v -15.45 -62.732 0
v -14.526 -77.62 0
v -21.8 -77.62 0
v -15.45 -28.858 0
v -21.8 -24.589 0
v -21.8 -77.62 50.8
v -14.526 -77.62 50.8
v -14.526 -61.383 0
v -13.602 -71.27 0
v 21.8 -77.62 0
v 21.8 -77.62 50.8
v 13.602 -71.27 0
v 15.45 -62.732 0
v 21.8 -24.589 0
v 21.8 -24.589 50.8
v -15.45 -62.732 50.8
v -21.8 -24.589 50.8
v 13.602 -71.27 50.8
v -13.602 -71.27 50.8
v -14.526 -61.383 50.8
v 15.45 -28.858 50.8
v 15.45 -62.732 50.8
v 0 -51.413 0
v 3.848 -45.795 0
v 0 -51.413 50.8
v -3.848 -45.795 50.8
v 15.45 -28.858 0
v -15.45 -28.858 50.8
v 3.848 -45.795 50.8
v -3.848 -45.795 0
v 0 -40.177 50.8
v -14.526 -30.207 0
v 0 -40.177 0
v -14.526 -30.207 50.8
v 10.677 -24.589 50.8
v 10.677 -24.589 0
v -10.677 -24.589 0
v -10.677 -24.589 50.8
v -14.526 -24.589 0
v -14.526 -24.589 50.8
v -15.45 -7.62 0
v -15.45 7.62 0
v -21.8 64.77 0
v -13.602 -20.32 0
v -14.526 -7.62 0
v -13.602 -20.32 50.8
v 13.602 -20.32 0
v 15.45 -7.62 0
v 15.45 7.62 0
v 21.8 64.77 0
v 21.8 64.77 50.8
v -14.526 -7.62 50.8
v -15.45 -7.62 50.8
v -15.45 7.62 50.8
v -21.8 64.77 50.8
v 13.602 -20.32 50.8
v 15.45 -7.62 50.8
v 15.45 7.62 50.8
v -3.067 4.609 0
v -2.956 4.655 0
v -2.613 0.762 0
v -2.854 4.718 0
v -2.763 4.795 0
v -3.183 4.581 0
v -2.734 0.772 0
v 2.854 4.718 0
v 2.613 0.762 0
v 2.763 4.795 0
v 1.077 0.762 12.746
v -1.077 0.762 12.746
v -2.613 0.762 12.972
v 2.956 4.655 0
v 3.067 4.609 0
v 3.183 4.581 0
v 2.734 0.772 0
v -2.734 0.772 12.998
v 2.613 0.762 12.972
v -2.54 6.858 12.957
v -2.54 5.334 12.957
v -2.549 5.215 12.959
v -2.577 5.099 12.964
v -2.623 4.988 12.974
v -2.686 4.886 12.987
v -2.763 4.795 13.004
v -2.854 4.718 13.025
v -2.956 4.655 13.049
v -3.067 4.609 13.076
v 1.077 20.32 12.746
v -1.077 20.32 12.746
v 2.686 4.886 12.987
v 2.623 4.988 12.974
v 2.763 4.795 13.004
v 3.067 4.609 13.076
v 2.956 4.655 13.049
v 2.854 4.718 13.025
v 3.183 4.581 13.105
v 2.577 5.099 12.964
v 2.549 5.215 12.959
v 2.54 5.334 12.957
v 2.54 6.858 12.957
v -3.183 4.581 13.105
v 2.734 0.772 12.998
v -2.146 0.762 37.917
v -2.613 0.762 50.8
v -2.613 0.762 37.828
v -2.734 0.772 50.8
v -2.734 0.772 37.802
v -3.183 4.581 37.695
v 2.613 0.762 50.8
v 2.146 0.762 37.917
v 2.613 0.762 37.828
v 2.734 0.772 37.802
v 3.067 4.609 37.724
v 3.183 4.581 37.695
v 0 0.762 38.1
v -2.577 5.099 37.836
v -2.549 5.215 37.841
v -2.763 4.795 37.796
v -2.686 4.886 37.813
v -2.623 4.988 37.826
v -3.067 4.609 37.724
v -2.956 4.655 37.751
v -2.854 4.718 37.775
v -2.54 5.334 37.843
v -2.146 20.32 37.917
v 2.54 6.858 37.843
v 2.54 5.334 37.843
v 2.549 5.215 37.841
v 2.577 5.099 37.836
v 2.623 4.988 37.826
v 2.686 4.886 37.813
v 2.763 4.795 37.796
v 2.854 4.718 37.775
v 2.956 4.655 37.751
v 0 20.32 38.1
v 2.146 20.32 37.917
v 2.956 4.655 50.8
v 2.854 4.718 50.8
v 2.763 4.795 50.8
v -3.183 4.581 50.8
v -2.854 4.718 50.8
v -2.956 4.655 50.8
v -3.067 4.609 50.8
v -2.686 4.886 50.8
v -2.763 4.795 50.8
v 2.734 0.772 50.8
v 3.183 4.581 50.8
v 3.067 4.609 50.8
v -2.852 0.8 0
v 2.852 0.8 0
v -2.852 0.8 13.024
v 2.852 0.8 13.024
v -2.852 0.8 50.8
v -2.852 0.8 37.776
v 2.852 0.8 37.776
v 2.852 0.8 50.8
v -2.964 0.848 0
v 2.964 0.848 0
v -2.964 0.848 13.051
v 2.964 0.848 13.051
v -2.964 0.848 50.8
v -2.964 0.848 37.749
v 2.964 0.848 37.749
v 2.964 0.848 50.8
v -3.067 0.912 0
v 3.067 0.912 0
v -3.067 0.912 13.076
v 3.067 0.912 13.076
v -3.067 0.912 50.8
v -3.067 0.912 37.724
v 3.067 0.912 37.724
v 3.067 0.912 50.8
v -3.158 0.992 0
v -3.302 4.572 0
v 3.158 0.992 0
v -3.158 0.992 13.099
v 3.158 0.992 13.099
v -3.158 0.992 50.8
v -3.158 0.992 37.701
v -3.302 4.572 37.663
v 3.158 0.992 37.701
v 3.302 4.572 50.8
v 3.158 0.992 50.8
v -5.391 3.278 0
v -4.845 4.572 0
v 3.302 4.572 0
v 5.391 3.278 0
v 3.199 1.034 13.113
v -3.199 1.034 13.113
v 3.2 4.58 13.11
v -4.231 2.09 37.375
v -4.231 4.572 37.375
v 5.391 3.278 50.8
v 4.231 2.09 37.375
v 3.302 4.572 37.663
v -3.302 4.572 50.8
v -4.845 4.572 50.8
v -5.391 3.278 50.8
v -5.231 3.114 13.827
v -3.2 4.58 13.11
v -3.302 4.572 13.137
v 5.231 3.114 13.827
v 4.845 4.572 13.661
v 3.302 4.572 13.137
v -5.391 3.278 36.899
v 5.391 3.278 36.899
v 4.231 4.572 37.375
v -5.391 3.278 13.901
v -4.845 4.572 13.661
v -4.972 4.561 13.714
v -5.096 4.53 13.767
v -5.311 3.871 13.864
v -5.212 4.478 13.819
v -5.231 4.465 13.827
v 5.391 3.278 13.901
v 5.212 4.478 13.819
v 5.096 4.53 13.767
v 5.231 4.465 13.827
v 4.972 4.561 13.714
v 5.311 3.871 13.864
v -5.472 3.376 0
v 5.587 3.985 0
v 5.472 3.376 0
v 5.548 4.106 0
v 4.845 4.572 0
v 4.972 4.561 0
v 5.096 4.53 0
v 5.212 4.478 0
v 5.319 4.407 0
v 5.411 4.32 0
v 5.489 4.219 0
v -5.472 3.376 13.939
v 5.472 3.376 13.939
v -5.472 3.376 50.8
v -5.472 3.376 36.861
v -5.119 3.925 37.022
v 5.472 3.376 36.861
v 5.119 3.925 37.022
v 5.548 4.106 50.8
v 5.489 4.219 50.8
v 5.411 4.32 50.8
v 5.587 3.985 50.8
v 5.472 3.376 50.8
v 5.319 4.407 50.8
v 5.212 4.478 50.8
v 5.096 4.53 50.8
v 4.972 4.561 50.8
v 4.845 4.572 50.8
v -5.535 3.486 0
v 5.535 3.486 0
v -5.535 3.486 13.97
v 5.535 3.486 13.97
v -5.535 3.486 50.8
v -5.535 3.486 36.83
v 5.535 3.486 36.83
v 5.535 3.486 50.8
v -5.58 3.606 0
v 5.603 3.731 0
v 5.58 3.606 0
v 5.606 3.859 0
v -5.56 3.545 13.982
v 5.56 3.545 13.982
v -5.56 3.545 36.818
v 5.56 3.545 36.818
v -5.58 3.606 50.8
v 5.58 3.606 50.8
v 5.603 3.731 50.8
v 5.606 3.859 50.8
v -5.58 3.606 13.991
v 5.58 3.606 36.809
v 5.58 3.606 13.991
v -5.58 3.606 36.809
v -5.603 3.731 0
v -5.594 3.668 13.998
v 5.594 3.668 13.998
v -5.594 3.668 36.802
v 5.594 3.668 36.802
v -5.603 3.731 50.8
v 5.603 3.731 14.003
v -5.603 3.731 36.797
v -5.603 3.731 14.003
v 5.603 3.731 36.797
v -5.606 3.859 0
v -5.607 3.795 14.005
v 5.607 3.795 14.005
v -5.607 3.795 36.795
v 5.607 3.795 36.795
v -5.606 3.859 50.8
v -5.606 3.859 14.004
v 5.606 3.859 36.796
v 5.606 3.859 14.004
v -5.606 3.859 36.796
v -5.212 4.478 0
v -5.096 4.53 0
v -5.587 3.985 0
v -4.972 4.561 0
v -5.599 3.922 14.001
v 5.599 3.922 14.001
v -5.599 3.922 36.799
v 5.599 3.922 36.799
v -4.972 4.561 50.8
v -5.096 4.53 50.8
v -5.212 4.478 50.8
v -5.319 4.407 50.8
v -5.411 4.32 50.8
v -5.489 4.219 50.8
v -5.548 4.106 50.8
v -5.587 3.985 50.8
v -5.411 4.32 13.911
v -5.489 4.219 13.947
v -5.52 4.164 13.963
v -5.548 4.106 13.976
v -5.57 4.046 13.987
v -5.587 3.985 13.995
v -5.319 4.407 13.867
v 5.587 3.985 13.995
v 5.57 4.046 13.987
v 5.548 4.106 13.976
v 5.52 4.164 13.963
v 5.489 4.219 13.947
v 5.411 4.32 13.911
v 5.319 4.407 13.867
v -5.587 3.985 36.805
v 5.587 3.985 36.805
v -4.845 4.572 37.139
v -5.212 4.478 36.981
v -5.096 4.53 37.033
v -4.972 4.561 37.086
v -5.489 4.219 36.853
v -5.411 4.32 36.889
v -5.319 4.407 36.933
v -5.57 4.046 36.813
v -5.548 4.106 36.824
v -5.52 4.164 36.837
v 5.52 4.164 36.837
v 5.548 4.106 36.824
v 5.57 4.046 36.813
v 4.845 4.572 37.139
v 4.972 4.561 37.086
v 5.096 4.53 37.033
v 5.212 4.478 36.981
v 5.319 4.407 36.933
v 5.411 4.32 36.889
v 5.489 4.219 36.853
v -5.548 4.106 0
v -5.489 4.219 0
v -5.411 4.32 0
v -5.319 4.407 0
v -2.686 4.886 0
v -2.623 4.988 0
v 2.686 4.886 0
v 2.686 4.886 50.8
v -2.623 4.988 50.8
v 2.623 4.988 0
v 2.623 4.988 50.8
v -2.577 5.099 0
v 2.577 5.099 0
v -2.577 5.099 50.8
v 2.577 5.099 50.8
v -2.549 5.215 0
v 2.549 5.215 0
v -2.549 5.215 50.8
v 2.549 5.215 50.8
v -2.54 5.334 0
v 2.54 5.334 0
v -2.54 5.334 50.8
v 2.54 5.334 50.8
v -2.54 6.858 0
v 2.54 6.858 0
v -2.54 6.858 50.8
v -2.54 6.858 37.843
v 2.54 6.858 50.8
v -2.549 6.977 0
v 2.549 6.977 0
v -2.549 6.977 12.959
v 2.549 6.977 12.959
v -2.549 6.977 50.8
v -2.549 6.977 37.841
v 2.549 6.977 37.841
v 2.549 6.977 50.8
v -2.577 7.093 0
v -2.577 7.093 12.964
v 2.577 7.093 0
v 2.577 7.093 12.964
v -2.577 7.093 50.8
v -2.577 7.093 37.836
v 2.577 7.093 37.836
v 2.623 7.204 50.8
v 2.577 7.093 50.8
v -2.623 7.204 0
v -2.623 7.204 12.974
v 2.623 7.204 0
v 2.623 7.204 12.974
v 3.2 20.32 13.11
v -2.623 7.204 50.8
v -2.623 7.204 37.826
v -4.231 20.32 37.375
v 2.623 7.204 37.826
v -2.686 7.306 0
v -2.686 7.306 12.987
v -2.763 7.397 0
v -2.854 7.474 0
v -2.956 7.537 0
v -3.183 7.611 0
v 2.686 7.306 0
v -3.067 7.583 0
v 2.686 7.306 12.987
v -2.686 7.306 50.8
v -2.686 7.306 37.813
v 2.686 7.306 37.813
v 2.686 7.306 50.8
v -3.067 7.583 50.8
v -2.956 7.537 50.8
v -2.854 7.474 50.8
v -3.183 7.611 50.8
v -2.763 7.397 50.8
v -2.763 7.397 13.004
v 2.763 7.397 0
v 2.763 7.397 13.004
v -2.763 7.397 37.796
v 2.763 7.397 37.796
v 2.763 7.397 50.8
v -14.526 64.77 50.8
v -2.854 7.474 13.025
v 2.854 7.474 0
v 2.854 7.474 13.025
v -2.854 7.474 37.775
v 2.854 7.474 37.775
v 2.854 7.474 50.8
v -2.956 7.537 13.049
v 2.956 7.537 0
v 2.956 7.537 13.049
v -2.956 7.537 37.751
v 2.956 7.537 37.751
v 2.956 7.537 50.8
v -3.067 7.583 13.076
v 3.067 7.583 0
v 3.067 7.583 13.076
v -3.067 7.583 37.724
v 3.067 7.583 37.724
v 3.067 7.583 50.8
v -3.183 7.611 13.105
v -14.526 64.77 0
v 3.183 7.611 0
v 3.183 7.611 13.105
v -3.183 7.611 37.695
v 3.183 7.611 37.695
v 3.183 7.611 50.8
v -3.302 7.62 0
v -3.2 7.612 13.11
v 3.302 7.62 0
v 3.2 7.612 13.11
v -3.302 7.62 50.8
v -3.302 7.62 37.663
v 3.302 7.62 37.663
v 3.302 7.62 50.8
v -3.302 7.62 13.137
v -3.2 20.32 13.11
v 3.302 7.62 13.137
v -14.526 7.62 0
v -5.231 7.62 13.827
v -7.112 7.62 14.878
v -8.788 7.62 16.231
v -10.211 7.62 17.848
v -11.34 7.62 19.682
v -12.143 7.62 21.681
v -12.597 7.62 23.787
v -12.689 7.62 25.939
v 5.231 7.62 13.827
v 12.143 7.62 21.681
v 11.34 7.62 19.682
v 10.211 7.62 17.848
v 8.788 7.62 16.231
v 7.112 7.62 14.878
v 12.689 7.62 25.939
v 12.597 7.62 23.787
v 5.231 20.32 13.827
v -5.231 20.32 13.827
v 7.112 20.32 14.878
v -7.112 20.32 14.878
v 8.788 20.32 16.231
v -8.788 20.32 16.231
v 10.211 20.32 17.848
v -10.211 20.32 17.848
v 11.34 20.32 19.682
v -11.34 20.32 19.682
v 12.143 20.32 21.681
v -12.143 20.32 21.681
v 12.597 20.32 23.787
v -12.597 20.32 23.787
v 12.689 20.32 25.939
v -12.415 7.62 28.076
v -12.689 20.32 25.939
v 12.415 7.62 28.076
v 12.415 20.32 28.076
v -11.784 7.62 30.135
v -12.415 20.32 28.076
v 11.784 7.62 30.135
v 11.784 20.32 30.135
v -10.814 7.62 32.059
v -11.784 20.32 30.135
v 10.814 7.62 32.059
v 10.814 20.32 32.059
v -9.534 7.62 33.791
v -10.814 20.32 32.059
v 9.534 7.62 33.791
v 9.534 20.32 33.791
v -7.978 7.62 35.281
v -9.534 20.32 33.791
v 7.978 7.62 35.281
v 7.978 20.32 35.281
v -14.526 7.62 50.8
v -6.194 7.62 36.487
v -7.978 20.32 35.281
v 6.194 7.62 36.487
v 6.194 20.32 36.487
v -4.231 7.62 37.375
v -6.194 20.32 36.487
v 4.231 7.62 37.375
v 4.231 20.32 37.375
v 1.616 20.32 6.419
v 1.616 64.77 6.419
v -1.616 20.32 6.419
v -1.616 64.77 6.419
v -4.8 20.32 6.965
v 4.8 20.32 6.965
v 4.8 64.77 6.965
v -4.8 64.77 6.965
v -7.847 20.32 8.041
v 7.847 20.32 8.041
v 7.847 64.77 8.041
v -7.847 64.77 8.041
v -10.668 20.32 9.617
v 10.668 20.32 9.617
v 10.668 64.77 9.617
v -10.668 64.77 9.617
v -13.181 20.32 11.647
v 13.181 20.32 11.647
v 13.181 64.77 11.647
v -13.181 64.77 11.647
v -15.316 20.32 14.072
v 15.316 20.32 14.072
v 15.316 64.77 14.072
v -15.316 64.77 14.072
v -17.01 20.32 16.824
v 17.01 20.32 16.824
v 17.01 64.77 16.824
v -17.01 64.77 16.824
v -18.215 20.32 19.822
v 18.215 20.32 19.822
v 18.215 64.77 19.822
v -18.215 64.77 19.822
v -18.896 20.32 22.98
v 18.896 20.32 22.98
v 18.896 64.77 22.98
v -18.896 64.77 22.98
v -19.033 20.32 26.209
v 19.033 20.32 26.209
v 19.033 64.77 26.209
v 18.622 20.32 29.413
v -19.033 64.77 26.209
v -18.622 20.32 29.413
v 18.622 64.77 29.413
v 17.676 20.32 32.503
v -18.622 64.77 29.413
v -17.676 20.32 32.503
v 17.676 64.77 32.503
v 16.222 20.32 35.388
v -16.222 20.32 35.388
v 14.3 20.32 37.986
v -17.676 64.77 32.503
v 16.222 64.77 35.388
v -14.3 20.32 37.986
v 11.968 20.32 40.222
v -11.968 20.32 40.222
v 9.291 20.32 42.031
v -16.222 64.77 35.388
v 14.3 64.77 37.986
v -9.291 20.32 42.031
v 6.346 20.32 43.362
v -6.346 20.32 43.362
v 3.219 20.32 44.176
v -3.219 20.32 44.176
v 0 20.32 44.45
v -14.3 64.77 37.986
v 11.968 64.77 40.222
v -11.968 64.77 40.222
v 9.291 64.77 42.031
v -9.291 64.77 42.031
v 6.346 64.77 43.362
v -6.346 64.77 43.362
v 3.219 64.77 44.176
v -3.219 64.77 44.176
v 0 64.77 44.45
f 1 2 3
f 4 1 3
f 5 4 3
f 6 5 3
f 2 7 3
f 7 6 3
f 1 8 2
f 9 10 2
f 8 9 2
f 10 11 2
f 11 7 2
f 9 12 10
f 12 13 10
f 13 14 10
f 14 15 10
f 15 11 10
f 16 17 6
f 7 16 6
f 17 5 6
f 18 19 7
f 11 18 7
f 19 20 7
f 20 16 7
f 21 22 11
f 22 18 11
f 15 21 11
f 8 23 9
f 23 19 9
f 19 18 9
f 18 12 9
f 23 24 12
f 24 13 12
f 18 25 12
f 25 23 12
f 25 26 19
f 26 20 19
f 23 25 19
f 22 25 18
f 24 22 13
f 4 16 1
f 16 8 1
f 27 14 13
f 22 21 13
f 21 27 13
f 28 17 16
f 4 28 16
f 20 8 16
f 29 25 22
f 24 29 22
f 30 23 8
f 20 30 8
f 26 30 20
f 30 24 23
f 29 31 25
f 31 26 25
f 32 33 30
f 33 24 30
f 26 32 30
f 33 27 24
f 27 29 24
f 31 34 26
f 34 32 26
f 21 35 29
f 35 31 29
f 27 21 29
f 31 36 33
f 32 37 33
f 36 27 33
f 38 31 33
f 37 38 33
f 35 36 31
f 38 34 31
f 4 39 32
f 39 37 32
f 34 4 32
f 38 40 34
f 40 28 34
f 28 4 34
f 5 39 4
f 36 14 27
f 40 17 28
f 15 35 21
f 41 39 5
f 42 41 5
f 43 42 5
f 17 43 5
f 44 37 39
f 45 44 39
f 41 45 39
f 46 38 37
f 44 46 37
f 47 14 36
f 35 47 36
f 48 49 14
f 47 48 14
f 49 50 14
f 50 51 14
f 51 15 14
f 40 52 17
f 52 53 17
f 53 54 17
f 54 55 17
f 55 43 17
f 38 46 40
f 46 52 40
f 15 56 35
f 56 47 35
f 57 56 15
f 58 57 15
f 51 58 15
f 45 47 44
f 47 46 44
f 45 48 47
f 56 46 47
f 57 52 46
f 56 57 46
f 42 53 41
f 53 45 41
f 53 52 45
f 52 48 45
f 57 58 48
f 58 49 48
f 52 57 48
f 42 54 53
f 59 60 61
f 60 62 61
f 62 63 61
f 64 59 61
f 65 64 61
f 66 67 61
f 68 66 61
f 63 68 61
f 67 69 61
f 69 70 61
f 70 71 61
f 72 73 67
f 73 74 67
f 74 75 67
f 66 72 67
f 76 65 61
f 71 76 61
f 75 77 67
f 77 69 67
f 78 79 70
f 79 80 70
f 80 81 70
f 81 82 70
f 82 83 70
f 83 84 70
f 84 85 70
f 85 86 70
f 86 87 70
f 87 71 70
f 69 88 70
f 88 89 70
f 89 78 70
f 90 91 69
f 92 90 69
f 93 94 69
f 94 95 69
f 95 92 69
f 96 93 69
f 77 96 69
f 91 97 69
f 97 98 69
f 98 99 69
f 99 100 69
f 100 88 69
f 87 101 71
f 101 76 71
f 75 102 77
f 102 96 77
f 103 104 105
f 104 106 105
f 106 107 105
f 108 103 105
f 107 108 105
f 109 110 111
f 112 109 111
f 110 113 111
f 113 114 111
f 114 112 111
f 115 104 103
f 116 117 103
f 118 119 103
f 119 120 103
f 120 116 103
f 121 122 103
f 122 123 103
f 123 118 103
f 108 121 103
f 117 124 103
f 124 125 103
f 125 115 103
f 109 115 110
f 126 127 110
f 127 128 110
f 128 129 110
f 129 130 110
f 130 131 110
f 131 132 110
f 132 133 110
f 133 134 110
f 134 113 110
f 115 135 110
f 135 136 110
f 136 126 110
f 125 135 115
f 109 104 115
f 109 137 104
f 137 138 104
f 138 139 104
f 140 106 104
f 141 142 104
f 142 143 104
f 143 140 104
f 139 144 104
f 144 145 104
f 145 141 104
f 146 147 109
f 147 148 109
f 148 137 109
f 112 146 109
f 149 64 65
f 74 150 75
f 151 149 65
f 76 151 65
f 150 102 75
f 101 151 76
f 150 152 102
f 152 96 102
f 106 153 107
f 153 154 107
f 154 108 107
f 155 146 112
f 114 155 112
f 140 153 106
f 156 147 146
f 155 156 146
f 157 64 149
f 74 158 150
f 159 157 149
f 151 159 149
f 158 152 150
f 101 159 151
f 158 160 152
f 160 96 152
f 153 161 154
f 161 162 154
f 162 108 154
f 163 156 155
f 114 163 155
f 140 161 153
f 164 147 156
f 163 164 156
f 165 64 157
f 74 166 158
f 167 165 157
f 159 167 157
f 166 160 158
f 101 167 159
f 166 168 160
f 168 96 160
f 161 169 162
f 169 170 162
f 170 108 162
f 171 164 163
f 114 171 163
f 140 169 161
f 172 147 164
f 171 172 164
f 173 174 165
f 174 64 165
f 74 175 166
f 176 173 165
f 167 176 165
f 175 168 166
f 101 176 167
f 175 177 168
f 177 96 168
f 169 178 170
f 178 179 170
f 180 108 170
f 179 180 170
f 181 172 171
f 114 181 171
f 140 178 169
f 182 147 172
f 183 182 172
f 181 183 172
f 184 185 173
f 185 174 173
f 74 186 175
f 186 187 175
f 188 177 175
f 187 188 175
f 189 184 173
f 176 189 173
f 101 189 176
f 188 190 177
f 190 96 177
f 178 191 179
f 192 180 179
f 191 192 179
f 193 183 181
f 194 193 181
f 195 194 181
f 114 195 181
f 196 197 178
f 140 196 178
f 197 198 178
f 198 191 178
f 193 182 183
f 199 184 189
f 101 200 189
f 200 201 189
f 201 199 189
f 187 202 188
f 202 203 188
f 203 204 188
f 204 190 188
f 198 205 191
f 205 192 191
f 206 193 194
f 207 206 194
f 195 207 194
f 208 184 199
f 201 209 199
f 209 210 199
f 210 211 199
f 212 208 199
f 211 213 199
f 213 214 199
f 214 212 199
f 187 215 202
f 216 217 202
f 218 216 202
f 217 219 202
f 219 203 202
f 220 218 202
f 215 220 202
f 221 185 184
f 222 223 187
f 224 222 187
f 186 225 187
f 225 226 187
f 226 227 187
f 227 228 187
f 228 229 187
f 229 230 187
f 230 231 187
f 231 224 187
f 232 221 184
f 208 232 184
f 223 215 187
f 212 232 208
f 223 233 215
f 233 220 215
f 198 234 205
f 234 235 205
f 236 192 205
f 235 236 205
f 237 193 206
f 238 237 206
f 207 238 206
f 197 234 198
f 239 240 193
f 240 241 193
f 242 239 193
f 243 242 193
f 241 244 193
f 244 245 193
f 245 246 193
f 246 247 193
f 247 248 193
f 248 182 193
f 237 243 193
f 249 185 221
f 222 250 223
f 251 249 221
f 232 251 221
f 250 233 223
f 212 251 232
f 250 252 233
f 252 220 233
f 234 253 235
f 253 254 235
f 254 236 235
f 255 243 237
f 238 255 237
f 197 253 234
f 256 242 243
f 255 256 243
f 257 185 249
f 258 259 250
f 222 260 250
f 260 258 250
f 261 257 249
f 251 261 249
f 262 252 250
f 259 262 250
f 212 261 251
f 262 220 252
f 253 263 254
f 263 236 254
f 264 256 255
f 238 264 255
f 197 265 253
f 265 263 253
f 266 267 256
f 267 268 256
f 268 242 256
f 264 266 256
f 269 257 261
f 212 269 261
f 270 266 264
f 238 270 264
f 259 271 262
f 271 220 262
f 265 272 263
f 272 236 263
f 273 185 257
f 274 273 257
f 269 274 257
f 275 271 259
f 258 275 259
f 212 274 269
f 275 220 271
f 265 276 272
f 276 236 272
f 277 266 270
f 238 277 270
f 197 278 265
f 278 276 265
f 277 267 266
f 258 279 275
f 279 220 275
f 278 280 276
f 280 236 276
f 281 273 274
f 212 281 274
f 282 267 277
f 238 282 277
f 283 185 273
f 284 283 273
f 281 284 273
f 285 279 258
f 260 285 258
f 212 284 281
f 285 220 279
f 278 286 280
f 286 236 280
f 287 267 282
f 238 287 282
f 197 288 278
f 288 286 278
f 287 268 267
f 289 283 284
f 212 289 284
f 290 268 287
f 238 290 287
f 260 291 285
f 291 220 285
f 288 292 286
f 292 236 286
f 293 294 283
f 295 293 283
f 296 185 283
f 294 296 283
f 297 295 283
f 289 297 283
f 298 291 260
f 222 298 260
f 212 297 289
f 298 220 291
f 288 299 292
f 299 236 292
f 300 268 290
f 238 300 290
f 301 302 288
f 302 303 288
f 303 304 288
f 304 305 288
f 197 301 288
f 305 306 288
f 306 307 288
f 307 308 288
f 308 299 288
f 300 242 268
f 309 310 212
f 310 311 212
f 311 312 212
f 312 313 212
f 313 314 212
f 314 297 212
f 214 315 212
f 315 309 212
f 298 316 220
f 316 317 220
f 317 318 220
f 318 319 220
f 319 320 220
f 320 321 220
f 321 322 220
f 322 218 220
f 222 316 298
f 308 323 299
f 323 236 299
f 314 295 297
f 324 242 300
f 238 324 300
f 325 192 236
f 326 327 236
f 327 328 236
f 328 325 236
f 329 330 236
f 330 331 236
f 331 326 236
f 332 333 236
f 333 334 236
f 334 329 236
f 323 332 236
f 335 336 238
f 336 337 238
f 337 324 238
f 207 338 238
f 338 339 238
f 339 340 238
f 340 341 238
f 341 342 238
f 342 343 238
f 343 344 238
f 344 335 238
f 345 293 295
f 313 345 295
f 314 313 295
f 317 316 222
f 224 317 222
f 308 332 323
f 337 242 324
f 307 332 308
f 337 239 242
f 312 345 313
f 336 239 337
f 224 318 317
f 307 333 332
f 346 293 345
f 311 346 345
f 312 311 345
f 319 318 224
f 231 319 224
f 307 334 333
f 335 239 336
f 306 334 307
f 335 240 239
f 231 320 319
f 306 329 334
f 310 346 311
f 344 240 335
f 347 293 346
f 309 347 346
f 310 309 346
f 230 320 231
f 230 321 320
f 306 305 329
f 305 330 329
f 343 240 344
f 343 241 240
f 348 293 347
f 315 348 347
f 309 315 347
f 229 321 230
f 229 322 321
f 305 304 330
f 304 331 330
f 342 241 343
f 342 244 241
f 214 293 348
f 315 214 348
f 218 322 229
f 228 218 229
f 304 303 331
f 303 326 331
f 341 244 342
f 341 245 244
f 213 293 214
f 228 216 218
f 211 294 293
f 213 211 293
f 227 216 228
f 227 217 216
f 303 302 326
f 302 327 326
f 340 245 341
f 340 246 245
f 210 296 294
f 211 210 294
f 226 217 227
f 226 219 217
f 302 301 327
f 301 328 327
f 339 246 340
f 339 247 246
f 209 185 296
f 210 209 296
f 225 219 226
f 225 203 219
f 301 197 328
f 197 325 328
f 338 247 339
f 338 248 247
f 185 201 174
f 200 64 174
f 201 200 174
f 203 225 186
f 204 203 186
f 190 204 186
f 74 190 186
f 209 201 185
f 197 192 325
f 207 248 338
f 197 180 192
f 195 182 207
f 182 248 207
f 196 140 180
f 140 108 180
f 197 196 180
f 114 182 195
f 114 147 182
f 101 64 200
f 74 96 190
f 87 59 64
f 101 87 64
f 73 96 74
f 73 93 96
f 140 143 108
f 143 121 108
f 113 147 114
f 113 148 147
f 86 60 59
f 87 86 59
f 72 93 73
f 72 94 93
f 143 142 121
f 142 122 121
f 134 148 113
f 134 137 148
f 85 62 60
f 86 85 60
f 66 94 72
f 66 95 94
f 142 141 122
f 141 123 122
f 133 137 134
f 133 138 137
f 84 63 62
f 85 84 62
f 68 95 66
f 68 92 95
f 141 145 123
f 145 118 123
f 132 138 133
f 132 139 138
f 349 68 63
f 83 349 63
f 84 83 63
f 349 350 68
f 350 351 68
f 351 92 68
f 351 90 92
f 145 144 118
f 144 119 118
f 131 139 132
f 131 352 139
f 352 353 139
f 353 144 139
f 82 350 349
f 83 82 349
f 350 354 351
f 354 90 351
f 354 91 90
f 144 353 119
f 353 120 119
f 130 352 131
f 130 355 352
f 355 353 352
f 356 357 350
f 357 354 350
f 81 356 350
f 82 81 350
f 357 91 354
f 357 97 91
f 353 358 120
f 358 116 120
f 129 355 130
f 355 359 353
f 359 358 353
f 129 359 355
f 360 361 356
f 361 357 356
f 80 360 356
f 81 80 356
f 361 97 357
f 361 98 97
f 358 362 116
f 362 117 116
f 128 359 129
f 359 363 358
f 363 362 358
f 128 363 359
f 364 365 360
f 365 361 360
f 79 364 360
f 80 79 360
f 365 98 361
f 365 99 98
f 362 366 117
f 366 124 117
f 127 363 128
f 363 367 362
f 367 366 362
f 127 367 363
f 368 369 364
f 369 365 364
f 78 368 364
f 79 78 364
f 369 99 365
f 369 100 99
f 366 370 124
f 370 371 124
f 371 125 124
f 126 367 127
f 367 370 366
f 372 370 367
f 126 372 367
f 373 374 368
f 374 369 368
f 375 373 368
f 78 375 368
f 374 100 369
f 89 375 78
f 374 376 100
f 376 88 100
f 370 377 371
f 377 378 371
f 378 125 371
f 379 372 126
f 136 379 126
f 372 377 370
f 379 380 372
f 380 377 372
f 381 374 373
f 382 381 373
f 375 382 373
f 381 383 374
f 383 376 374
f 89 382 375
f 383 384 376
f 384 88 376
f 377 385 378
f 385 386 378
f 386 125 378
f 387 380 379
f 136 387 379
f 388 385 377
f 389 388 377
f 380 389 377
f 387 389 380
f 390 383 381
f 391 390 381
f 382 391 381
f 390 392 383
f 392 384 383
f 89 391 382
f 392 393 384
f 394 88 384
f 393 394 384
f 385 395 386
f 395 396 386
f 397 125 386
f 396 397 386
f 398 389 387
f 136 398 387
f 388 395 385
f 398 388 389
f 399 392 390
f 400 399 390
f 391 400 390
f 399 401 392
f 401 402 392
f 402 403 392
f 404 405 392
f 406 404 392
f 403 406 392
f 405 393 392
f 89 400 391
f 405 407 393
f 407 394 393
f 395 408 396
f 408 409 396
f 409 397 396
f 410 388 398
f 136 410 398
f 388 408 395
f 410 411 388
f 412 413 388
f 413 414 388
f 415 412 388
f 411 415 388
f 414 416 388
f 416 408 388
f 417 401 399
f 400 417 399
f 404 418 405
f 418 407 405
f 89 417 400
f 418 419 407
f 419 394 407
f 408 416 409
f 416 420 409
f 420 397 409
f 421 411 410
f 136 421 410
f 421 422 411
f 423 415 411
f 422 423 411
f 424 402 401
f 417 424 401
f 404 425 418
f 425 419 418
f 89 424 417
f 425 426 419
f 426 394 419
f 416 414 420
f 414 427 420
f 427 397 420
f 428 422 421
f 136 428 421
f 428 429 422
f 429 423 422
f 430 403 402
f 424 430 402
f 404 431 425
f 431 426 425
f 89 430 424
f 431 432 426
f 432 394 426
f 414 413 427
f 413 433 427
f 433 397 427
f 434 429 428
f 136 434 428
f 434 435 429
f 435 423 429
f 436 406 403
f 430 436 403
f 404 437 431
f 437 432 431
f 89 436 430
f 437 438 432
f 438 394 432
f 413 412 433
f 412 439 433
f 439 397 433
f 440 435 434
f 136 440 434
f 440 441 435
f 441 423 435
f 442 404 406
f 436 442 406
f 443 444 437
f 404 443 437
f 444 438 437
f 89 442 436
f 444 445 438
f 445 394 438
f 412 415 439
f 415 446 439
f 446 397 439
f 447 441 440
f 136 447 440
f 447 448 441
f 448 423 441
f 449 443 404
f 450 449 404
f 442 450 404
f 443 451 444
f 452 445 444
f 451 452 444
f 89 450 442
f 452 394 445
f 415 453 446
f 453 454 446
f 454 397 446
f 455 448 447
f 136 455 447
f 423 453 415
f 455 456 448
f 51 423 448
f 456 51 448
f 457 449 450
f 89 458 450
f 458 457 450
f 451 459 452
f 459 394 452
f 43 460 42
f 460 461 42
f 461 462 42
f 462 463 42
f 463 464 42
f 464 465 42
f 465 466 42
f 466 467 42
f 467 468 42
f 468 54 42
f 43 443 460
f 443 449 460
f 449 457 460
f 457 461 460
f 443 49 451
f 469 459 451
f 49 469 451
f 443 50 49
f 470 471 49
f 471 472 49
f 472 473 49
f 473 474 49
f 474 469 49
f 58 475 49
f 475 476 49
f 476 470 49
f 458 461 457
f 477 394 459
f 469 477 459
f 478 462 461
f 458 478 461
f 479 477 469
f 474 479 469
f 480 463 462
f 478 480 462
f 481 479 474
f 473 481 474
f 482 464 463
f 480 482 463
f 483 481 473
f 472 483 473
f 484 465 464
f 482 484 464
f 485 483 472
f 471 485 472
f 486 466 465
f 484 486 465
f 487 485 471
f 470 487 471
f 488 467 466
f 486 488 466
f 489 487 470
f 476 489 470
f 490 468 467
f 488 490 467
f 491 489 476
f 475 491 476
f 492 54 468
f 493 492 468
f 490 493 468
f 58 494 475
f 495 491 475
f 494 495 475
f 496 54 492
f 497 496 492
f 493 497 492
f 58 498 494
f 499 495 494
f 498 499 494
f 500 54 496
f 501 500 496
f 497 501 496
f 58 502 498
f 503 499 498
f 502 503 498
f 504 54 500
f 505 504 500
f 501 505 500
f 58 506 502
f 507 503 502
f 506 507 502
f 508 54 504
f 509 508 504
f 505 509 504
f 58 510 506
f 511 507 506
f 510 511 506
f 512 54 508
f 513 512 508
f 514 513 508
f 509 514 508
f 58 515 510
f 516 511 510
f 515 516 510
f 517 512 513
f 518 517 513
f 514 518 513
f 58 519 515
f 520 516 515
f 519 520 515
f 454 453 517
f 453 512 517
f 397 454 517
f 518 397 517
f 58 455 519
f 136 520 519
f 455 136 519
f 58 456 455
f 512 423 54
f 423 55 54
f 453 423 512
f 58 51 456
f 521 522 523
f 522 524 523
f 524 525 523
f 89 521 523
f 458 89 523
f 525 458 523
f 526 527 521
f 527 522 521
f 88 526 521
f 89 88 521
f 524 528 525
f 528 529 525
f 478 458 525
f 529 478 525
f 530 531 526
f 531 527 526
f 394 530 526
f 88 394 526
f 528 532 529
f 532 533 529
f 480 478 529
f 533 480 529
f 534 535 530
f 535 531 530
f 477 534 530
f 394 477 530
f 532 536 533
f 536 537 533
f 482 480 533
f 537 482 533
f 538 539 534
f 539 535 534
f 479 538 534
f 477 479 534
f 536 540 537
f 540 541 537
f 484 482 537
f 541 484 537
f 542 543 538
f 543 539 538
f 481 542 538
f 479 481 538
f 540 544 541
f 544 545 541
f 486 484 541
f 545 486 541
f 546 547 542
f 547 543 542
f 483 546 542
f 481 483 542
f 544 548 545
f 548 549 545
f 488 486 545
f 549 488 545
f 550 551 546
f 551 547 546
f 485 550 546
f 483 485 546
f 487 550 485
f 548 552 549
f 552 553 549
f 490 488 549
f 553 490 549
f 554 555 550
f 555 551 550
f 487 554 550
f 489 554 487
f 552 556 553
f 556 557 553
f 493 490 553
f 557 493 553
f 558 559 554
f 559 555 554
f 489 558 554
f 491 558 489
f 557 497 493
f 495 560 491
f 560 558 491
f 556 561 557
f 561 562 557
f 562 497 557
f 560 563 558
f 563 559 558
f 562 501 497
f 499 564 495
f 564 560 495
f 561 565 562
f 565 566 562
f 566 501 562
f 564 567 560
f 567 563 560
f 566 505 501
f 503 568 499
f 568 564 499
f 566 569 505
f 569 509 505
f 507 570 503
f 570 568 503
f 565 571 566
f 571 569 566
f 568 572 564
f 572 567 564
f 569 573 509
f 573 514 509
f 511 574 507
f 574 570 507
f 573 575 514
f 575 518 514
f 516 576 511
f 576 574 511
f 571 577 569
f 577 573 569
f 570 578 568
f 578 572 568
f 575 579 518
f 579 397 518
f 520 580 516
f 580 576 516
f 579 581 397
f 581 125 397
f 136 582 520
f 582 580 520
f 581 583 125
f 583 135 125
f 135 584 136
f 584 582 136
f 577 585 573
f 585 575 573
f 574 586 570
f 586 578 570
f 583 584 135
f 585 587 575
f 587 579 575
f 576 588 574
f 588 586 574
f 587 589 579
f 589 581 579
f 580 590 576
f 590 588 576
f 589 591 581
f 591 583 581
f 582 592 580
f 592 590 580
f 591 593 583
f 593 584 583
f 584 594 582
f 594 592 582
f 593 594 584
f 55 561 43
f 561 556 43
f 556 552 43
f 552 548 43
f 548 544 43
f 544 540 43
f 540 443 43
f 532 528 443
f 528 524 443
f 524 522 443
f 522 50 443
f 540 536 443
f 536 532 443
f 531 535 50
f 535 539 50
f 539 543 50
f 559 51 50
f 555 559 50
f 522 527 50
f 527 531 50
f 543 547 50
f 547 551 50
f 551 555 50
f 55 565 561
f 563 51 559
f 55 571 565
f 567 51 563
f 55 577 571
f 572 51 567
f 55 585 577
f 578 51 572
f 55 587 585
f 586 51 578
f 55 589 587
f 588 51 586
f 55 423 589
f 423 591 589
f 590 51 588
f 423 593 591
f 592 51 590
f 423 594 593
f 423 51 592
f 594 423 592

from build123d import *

# Parameters (mm, degrees)
BOSS_EXTRUDE1_DEPTH = 50.8
FILLET1_R           = 0.762
SKETCH2_R           = 19.05
CUT_EXTRUDE1_DEPTH  = 44.45
SKETCH3_R           = 12.7
CUT_EXTRUDE2_DEPTH  = 66.04


with BuildPart() as part:
    # Sketch1 → Boss-Extrude1 (new body)
    with BuildSketch(Plane.XY):
        Polygon((-21.799999961, -13.97), (-21.799999961, 13.97), (-21.799999961, 64.77), (21.799999961, 64.77), (21.799999961, 13.97), (21.799999961, -13.97), (21.799999961, -77.619999954), (-21.799999961, -77.619999954), align=None)
        Polygon((-15.449999961, 7.62), (-2.54, 7.62), (-2.54, 4.572), (-6.6548, 4.572), (-2.933726616, 0.762), (2.933726616, 0.762), (6.6548, 4.572), (2.54, 4.572), (2.54, 7.62), (15.449999961, 7.62), (15.449999961, -7.62), (-15.449999961, -7.62), align=None, mode=Mode.SUBTRACT)
        Polygon((-13.601813914, -20.32), (0, -40.176776526), (13.601813914, -20.32), align=None, mode=Mode.SUBTRACT)
        Polygon((15.449999961, -28.858349607), (3.848460993, -45.794999977), (15.449999961, -62.731650347), align=None, mode=Mode.SUBTRACT)
        Polygon((-3.848460993, -45.794999977), (-15.449999961, -62.731650347), (-15.449999961, -28.858349607), align=None, mode=Mode.SUBTRACT)
        Polygon((0, -51.413223428), (-13.601813914, -71.269999954), (13.601813914, -71.269999954), align=None, mode=Mode.SUBTRACT)
    extrude(amount=BOSS_EXTRUDE1_DEPTH)

    # Fillet1
    fillet1_edges = [part.edges().sort_by_distance(p)[0] for p in [
        (2.54, 7.62, 25.4),
        (2.54, 4.572, 25.4),
        (6.6548, 4.572, 25.4),
        (2.933726616, 0.762, 25.4),
        (-2.933726616, 0.762, 25.4),
        (-6.6548, 4.572, 25.4),
        (-2.54, 4.572, 25.4),
        (-2.54, 7.62, 25.4),
    ]]
    fillet(fillet1_edges, radius=FILLET1_R)

    # Sketch2 → Cut-Extrude1 (cut)
    with BuildSketch(Plane(origin=(0, 64.77, 0), x_dir=(1, 0, 0), z_dir=(0, 1, 0))):
        with Locations(Location((0, -25.4, 0), (0, 0, 270))):
            Circle(SKETCH2_R)
    extrude(amount=-CUT_EXTRUDE1_DEPTH, mode=Mode.SUBTRACT)

    # Sketch3 → Cut-Extrude2 (cut)
    with BuildSketch(Plane(origin=(0, 64.77, 0), x_dir=(1, 0, 0), z_dir=(0, 1, 0))):
        with Locations(Location((0, -25.4, 0), (0, 0, 270))):
            Circle(SKETCH3_R)
    extrude(amount=-CUT_EXTRUDE2_DEPTH, mode=Mode.SUBTRACT)


solid = part.part
